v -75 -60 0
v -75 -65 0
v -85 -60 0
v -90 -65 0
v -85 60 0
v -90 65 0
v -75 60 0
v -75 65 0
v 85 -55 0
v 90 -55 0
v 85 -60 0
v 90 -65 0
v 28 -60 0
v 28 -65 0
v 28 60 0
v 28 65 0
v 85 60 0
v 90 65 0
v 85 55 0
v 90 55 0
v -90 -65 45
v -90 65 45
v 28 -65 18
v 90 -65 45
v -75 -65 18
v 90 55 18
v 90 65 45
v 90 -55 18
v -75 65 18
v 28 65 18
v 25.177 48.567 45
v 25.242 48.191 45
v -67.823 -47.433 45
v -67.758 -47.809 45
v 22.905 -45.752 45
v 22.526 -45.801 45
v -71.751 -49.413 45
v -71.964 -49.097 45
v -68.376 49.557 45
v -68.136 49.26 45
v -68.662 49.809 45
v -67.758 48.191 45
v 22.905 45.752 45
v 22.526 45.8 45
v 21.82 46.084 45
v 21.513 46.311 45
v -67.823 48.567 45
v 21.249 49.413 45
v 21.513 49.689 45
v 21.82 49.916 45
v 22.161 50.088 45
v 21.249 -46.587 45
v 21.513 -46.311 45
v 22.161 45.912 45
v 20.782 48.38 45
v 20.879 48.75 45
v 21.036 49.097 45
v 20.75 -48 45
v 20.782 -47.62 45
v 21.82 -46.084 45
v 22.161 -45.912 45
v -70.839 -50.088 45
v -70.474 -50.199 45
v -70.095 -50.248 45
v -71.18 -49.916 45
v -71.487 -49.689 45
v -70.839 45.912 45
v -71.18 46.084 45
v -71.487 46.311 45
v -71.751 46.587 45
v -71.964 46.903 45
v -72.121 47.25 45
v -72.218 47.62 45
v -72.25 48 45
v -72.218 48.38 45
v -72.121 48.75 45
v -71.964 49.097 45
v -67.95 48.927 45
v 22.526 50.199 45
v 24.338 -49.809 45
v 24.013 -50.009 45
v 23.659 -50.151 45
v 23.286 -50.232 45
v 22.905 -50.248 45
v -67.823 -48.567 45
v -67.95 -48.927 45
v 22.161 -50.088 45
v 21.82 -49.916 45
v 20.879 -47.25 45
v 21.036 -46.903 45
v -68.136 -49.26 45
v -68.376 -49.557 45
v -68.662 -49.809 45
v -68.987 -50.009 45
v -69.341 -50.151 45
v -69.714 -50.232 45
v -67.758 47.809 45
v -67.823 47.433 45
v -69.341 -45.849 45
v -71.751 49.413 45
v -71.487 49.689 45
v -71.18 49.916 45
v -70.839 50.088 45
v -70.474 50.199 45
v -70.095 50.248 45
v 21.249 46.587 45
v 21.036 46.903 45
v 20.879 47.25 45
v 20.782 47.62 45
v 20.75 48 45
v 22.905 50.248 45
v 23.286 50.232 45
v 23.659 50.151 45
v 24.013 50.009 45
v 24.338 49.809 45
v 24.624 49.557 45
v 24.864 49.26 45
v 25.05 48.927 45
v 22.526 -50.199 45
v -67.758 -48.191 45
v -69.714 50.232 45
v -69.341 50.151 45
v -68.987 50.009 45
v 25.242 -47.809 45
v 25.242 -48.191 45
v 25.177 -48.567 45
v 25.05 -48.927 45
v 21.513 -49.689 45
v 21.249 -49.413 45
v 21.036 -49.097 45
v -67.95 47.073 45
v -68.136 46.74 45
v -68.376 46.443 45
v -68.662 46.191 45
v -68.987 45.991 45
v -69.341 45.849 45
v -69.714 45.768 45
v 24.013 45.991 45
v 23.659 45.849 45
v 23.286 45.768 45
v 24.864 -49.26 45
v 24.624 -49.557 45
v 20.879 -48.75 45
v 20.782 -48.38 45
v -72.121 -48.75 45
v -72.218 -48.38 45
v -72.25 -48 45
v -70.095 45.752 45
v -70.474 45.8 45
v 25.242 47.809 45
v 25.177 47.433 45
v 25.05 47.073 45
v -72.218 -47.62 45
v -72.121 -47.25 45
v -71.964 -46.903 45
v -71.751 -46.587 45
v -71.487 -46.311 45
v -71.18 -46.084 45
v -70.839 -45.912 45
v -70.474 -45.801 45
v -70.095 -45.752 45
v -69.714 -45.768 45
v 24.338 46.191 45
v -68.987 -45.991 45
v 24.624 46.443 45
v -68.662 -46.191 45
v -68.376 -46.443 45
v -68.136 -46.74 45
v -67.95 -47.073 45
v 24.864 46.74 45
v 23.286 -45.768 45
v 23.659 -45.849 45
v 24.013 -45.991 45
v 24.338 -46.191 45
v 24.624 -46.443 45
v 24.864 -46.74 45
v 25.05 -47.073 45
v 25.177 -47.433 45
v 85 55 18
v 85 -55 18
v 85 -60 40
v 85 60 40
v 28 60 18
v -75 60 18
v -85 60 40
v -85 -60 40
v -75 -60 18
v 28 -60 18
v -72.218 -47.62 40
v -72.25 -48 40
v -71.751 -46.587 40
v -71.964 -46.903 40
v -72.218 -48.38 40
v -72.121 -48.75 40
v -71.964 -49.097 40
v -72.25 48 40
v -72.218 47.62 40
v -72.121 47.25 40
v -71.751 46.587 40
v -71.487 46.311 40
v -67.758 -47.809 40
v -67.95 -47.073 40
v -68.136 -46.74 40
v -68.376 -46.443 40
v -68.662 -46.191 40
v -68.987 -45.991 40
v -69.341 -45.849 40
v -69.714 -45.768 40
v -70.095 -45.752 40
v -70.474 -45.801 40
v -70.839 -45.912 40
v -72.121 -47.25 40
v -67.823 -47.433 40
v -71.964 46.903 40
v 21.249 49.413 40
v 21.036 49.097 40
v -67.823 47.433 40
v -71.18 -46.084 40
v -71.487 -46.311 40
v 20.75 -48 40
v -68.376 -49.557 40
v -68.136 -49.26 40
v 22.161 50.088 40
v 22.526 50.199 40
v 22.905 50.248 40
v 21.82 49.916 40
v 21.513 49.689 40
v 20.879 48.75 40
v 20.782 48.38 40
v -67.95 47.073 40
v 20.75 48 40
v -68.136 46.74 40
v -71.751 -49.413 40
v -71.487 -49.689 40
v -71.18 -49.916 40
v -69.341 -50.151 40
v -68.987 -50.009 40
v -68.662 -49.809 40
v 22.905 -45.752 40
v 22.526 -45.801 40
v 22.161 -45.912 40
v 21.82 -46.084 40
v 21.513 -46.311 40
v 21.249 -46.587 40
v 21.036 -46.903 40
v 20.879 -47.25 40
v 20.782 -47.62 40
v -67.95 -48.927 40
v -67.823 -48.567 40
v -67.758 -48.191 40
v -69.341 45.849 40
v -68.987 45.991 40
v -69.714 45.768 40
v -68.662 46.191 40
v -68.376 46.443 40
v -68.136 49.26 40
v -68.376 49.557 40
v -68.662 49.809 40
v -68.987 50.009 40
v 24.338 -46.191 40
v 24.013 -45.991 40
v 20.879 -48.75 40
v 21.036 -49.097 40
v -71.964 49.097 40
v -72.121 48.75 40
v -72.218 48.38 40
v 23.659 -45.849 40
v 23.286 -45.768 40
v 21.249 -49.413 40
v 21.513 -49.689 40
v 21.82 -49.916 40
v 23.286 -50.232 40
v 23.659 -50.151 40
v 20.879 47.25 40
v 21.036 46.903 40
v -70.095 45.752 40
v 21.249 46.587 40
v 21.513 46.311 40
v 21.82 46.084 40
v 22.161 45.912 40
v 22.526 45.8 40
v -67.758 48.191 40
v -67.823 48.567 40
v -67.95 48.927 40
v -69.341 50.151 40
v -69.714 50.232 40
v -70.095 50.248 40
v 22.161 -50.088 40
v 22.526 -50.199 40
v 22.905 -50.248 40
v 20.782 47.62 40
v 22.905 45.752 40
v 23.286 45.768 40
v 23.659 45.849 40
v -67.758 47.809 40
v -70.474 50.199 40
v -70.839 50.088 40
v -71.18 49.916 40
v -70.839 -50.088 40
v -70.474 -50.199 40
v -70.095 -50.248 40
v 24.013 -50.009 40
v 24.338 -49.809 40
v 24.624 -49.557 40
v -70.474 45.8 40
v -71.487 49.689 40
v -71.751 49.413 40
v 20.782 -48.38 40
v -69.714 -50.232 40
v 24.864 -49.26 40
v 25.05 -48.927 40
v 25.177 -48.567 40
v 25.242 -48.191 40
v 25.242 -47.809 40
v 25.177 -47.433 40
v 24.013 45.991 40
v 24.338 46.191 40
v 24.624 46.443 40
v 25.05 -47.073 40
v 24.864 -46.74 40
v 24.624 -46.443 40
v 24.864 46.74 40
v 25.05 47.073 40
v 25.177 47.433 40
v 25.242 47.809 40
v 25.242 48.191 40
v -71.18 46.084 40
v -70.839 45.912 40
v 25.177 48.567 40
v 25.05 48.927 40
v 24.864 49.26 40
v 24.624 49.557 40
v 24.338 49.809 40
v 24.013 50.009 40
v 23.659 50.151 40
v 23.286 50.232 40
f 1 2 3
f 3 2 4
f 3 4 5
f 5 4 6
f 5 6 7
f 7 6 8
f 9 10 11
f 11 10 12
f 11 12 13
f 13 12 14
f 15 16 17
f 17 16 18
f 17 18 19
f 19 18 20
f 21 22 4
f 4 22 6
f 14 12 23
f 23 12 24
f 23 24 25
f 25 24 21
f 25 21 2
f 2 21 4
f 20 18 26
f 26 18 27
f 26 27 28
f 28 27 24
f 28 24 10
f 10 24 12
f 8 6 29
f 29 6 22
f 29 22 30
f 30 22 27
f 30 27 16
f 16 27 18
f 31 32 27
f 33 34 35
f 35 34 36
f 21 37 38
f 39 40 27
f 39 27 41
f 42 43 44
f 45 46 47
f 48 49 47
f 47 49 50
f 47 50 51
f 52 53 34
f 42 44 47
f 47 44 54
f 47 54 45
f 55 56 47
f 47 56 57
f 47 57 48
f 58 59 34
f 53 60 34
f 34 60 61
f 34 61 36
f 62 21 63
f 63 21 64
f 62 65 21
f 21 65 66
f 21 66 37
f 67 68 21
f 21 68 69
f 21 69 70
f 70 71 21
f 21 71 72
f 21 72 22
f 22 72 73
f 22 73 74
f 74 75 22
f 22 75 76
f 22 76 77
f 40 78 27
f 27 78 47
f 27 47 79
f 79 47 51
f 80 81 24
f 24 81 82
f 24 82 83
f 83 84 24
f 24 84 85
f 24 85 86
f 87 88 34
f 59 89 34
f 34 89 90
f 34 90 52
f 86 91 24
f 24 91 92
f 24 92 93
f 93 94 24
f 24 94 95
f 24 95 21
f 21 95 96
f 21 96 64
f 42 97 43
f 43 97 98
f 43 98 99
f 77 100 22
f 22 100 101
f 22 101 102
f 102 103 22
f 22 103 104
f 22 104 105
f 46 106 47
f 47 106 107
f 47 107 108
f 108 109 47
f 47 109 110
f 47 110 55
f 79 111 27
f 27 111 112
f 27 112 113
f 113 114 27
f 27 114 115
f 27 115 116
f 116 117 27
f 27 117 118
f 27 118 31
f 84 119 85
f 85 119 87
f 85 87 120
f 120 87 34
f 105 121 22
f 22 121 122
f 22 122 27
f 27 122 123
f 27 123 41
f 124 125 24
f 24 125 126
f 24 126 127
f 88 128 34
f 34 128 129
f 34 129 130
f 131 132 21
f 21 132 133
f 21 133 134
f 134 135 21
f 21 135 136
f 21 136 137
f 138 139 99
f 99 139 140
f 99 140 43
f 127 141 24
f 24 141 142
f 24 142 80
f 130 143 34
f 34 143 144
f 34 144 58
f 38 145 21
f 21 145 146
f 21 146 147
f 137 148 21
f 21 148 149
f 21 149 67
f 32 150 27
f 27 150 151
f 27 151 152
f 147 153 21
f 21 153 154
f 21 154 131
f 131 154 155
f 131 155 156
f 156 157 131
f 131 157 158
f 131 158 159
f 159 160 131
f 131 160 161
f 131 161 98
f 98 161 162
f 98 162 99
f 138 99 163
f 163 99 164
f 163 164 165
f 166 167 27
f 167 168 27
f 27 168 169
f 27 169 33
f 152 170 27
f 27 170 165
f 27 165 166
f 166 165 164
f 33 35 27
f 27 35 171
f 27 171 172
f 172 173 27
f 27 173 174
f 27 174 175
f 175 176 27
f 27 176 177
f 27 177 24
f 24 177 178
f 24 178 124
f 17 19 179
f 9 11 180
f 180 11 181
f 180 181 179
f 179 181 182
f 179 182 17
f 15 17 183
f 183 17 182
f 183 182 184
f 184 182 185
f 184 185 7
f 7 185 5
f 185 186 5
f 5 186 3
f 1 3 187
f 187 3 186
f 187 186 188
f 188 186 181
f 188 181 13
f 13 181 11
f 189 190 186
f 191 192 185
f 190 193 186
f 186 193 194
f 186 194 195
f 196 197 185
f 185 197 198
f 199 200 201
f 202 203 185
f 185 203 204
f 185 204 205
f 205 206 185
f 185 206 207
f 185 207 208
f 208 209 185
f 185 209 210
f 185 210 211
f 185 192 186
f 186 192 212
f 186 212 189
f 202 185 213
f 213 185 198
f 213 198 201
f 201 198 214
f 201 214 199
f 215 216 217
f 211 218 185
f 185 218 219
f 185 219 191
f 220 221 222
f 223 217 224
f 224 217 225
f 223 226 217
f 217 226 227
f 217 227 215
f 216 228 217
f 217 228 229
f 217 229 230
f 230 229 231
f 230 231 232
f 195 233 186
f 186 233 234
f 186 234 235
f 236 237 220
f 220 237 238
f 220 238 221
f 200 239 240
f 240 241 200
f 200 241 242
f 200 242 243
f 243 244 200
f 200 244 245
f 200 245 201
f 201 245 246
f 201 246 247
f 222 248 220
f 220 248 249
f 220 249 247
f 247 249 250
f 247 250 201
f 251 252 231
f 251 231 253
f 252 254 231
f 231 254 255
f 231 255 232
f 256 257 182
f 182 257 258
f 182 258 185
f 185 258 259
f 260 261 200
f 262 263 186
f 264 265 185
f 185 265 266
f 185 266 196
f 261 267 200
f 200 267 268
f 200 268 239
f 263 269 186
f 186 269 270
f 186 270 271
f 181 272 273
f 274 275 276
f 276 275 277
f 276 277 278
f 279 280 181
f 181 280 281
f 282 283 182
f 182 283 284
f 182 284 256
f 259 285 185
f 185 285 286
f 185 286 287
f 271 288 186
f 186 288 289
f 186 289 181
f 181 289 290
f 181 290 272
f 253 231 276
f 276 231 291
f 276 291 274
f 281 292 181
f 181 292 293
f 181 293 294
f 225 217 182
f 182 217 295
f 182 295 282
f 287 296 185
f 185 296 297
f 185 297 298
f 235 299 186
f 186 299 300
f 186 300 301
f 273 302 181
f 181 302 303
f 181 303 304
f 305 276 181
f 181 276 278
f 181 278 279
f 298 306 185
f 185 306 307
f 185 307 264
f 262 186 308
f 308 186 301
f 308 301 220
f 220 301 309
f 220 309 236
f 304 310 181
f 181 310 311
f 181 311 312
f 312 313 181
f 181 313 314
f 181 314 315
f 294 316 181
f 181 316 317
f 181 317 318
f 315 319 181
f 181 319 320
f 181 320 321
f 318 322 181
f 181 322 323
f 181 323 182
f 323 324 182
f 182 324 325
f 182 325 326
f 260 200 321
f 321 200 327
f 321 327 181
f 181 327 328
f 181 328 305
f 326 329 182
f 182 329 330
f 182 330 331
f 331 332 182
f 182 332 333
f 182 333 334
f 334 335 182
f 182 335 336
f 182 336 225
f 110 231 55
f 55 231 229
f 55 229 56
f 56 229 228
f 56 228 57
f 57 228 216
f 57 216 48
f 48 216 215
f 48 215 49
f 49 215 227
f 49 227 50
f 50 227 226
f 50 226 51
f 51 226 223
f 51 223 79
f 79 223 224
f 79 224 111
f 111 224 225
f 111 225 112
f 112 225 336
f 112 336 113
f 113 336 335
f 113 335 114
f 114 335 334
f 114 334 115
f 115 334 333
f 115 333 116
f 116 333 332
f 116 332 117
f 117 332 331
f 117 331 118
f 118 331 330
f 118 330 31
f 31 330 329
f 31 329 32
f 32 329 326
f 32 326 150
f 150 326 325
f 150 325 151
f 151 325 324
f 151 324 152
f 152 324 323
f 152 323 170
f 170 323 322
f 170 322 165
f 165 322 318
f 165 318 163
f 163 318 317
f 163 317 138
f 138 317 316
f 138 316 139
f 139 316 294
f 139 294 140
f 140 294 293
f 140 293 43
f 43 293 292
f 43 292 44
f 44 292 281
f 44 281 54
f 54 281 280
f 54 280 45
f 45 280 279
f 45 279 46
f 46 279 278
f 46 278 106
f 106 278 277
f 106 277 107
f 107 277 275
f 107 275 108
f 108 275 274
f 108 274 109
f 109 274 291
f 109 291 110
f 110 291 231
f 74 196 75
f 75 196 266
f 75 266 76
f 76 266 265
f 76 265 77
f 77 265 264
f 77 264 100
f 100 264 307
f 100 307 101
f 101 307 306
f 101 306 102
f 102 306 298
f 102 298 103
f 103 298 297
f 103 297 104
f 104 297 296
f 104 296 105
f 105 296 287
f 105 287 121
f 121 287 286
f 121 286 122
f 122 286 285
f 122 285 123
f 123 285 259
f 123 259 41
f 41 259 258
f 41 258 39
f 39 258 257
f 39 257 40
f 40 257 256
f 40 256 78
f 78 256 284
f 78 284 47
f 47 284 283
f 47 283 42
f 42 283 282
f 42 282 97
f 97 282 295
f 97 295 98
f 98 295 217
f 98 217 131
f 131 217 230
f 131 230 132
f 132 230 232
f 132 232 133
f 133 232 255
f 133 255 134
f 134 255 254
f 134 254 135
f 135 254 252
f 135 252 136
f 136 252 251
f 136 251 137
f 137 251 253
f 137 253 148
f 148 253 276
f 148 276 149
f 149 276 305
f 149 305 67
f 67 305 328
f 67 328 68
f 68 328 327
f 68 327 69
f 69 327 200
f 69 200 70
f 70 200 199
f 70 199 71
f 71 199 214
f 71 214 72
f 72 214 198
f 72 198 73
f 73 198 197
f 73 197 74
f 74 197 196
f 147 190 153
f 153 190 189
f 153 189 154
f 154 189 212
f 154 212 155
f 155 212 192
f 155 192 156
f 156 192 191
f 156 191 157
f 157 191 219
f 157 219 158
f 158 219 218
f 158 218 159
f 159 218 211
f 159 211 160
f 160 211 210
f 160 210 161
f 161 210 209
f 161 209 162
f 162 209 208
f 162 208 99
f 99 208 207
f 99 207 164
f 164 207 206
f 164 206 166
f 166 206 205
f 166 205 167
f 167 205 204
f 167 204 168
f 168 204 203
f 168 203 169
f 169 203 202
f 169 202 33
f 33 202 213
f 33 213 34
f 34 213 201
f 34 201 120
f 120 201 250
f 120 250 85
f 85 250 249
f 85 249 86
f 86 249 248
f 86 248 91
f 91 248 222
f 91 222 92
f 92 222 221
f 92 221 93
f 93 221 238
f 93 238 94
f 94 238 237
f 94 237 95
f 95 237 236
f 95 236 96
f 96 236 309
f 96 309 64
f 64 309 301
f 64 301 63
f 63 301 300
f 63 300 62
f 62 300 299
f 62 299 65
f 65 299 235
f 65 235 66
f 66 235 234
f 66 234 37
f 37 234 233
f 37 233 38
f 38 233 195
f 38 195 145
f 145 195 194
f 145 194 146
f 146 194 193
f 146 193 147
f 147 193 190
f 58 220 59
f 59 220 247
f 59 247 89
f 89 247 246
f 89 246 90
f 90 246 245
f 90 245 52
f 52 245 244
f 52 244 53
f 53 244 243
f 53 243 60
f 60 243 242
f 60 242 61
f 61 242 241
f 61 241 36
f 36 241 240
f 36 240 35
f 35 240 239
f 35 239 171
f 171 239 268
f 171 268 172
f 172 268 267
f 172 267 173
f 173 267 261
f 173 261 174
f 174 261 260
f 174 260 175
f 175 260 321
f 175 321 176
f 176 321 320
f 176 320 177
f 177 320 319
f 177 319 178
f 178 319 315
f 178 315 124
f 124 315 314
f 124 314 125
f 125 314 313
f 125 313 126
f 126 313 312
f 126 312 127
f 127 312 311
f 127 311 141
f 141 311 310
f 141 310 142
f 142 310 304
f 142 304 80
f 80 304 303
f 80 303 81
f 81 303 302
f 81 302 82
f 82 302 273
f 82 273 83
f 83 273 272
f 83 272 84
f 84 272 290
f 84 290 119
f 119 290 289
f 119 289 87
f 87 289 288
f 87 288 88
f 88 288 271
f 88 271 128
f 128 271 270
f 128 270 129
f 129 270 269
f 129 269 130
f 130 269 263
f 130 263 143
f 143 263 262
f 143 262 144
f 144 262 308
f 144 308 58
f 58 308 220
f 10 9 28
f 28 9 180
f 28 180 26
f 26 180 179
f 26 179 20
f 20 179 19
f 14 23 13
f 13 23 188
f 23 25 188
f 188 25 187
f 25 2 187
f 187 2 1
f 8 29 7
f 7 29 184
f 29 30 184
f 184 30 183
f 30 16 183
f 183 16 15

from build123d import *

# Parameters (mm, degrees)
SKETCH1_W            = 180
SKETCH1_H            = 130
BOSS_EXTRUDE1_DEPTH  = 45
SKETCH3_W            = 170
SKETCH3_H            = 120
CUT_EXTRUDE1_DEPTH   = 40
M4_CLEARANCE_HOLE1_D = 4.5
CUT_EXTRUDE2_REACH   = 182
SKETCH7_W            = 18
SKETCH7_H            = 110
SKETCH8_W            = 103
SKETCH8_H            = 18
CUT_EXTRUDE3_DEPTH   = 130


with BuildPart() as part:
    # Sketch1 → Boss-Extrude1 (new body)
    with BuildSketch(Plane.XY):
        Rectangle(SKETCH1_W, SKETCH1_H)
    extrude(amount=BOSS_EXTRUDE1_DEPTH)

    # Sketch3 → Cut-Extrude1 (cut)
    with BuildSketch(Plane.XY):
        Rectangle(SKETCH3_W, SKETCH3_H)
    extrude(amount=CUT_EXTRUDE1_DEPTH, mode=Mode.SUBTRACT)

    # M4 Clearance Hole1 (through all)
    with Locations(Plane(origin=(0, 0, 40), x_dir=(-1, 0, 0), z_dir=(0, 0, -1))):
        with Locations((-23, -48), (70, -48), (70, 48), (-23, 48)):
            Hole(M4_CLEARANCE_HOLE1_D / 2)

    # Sketch7 → Cut-Extrude2 (cut, up to next)
    with BuildSketch(Plane(origin=(90, 0, 0), x_dir=(0, 0, -1), z_dir=(1, 0, 0)), mode=Mode.PRIVATE) as cut_extrude2_sk1:
        with Locations((-9, 0)):
            Rectangle(SKETCH7_W, SKETCH7_H)
    cut_extrude2_tool1 = extrude(cut_extrude2_sk1.sketch, amount=-CUT_EXTRUDE2_REACH, mode=Mode.PRIVATE) & part.part
    add(cut_extrude2_tool1.solids().sort_by_distance((90, 0, 9))[0], mode=Mode.SUBTRACT)

    # Sketch8 → Cut-Extrude3 (cut)
    with BuildSketch(Plane.XZ.offset(65)):
        with Locations((-23.5, 9)):
            Rectangle(SKETCH8_W, SKETCH8_H)
    extrude(amount=-CUT_EXTRUDE3_DEPTH, mode=Mode.SUBTRACT)


solid = part.part
